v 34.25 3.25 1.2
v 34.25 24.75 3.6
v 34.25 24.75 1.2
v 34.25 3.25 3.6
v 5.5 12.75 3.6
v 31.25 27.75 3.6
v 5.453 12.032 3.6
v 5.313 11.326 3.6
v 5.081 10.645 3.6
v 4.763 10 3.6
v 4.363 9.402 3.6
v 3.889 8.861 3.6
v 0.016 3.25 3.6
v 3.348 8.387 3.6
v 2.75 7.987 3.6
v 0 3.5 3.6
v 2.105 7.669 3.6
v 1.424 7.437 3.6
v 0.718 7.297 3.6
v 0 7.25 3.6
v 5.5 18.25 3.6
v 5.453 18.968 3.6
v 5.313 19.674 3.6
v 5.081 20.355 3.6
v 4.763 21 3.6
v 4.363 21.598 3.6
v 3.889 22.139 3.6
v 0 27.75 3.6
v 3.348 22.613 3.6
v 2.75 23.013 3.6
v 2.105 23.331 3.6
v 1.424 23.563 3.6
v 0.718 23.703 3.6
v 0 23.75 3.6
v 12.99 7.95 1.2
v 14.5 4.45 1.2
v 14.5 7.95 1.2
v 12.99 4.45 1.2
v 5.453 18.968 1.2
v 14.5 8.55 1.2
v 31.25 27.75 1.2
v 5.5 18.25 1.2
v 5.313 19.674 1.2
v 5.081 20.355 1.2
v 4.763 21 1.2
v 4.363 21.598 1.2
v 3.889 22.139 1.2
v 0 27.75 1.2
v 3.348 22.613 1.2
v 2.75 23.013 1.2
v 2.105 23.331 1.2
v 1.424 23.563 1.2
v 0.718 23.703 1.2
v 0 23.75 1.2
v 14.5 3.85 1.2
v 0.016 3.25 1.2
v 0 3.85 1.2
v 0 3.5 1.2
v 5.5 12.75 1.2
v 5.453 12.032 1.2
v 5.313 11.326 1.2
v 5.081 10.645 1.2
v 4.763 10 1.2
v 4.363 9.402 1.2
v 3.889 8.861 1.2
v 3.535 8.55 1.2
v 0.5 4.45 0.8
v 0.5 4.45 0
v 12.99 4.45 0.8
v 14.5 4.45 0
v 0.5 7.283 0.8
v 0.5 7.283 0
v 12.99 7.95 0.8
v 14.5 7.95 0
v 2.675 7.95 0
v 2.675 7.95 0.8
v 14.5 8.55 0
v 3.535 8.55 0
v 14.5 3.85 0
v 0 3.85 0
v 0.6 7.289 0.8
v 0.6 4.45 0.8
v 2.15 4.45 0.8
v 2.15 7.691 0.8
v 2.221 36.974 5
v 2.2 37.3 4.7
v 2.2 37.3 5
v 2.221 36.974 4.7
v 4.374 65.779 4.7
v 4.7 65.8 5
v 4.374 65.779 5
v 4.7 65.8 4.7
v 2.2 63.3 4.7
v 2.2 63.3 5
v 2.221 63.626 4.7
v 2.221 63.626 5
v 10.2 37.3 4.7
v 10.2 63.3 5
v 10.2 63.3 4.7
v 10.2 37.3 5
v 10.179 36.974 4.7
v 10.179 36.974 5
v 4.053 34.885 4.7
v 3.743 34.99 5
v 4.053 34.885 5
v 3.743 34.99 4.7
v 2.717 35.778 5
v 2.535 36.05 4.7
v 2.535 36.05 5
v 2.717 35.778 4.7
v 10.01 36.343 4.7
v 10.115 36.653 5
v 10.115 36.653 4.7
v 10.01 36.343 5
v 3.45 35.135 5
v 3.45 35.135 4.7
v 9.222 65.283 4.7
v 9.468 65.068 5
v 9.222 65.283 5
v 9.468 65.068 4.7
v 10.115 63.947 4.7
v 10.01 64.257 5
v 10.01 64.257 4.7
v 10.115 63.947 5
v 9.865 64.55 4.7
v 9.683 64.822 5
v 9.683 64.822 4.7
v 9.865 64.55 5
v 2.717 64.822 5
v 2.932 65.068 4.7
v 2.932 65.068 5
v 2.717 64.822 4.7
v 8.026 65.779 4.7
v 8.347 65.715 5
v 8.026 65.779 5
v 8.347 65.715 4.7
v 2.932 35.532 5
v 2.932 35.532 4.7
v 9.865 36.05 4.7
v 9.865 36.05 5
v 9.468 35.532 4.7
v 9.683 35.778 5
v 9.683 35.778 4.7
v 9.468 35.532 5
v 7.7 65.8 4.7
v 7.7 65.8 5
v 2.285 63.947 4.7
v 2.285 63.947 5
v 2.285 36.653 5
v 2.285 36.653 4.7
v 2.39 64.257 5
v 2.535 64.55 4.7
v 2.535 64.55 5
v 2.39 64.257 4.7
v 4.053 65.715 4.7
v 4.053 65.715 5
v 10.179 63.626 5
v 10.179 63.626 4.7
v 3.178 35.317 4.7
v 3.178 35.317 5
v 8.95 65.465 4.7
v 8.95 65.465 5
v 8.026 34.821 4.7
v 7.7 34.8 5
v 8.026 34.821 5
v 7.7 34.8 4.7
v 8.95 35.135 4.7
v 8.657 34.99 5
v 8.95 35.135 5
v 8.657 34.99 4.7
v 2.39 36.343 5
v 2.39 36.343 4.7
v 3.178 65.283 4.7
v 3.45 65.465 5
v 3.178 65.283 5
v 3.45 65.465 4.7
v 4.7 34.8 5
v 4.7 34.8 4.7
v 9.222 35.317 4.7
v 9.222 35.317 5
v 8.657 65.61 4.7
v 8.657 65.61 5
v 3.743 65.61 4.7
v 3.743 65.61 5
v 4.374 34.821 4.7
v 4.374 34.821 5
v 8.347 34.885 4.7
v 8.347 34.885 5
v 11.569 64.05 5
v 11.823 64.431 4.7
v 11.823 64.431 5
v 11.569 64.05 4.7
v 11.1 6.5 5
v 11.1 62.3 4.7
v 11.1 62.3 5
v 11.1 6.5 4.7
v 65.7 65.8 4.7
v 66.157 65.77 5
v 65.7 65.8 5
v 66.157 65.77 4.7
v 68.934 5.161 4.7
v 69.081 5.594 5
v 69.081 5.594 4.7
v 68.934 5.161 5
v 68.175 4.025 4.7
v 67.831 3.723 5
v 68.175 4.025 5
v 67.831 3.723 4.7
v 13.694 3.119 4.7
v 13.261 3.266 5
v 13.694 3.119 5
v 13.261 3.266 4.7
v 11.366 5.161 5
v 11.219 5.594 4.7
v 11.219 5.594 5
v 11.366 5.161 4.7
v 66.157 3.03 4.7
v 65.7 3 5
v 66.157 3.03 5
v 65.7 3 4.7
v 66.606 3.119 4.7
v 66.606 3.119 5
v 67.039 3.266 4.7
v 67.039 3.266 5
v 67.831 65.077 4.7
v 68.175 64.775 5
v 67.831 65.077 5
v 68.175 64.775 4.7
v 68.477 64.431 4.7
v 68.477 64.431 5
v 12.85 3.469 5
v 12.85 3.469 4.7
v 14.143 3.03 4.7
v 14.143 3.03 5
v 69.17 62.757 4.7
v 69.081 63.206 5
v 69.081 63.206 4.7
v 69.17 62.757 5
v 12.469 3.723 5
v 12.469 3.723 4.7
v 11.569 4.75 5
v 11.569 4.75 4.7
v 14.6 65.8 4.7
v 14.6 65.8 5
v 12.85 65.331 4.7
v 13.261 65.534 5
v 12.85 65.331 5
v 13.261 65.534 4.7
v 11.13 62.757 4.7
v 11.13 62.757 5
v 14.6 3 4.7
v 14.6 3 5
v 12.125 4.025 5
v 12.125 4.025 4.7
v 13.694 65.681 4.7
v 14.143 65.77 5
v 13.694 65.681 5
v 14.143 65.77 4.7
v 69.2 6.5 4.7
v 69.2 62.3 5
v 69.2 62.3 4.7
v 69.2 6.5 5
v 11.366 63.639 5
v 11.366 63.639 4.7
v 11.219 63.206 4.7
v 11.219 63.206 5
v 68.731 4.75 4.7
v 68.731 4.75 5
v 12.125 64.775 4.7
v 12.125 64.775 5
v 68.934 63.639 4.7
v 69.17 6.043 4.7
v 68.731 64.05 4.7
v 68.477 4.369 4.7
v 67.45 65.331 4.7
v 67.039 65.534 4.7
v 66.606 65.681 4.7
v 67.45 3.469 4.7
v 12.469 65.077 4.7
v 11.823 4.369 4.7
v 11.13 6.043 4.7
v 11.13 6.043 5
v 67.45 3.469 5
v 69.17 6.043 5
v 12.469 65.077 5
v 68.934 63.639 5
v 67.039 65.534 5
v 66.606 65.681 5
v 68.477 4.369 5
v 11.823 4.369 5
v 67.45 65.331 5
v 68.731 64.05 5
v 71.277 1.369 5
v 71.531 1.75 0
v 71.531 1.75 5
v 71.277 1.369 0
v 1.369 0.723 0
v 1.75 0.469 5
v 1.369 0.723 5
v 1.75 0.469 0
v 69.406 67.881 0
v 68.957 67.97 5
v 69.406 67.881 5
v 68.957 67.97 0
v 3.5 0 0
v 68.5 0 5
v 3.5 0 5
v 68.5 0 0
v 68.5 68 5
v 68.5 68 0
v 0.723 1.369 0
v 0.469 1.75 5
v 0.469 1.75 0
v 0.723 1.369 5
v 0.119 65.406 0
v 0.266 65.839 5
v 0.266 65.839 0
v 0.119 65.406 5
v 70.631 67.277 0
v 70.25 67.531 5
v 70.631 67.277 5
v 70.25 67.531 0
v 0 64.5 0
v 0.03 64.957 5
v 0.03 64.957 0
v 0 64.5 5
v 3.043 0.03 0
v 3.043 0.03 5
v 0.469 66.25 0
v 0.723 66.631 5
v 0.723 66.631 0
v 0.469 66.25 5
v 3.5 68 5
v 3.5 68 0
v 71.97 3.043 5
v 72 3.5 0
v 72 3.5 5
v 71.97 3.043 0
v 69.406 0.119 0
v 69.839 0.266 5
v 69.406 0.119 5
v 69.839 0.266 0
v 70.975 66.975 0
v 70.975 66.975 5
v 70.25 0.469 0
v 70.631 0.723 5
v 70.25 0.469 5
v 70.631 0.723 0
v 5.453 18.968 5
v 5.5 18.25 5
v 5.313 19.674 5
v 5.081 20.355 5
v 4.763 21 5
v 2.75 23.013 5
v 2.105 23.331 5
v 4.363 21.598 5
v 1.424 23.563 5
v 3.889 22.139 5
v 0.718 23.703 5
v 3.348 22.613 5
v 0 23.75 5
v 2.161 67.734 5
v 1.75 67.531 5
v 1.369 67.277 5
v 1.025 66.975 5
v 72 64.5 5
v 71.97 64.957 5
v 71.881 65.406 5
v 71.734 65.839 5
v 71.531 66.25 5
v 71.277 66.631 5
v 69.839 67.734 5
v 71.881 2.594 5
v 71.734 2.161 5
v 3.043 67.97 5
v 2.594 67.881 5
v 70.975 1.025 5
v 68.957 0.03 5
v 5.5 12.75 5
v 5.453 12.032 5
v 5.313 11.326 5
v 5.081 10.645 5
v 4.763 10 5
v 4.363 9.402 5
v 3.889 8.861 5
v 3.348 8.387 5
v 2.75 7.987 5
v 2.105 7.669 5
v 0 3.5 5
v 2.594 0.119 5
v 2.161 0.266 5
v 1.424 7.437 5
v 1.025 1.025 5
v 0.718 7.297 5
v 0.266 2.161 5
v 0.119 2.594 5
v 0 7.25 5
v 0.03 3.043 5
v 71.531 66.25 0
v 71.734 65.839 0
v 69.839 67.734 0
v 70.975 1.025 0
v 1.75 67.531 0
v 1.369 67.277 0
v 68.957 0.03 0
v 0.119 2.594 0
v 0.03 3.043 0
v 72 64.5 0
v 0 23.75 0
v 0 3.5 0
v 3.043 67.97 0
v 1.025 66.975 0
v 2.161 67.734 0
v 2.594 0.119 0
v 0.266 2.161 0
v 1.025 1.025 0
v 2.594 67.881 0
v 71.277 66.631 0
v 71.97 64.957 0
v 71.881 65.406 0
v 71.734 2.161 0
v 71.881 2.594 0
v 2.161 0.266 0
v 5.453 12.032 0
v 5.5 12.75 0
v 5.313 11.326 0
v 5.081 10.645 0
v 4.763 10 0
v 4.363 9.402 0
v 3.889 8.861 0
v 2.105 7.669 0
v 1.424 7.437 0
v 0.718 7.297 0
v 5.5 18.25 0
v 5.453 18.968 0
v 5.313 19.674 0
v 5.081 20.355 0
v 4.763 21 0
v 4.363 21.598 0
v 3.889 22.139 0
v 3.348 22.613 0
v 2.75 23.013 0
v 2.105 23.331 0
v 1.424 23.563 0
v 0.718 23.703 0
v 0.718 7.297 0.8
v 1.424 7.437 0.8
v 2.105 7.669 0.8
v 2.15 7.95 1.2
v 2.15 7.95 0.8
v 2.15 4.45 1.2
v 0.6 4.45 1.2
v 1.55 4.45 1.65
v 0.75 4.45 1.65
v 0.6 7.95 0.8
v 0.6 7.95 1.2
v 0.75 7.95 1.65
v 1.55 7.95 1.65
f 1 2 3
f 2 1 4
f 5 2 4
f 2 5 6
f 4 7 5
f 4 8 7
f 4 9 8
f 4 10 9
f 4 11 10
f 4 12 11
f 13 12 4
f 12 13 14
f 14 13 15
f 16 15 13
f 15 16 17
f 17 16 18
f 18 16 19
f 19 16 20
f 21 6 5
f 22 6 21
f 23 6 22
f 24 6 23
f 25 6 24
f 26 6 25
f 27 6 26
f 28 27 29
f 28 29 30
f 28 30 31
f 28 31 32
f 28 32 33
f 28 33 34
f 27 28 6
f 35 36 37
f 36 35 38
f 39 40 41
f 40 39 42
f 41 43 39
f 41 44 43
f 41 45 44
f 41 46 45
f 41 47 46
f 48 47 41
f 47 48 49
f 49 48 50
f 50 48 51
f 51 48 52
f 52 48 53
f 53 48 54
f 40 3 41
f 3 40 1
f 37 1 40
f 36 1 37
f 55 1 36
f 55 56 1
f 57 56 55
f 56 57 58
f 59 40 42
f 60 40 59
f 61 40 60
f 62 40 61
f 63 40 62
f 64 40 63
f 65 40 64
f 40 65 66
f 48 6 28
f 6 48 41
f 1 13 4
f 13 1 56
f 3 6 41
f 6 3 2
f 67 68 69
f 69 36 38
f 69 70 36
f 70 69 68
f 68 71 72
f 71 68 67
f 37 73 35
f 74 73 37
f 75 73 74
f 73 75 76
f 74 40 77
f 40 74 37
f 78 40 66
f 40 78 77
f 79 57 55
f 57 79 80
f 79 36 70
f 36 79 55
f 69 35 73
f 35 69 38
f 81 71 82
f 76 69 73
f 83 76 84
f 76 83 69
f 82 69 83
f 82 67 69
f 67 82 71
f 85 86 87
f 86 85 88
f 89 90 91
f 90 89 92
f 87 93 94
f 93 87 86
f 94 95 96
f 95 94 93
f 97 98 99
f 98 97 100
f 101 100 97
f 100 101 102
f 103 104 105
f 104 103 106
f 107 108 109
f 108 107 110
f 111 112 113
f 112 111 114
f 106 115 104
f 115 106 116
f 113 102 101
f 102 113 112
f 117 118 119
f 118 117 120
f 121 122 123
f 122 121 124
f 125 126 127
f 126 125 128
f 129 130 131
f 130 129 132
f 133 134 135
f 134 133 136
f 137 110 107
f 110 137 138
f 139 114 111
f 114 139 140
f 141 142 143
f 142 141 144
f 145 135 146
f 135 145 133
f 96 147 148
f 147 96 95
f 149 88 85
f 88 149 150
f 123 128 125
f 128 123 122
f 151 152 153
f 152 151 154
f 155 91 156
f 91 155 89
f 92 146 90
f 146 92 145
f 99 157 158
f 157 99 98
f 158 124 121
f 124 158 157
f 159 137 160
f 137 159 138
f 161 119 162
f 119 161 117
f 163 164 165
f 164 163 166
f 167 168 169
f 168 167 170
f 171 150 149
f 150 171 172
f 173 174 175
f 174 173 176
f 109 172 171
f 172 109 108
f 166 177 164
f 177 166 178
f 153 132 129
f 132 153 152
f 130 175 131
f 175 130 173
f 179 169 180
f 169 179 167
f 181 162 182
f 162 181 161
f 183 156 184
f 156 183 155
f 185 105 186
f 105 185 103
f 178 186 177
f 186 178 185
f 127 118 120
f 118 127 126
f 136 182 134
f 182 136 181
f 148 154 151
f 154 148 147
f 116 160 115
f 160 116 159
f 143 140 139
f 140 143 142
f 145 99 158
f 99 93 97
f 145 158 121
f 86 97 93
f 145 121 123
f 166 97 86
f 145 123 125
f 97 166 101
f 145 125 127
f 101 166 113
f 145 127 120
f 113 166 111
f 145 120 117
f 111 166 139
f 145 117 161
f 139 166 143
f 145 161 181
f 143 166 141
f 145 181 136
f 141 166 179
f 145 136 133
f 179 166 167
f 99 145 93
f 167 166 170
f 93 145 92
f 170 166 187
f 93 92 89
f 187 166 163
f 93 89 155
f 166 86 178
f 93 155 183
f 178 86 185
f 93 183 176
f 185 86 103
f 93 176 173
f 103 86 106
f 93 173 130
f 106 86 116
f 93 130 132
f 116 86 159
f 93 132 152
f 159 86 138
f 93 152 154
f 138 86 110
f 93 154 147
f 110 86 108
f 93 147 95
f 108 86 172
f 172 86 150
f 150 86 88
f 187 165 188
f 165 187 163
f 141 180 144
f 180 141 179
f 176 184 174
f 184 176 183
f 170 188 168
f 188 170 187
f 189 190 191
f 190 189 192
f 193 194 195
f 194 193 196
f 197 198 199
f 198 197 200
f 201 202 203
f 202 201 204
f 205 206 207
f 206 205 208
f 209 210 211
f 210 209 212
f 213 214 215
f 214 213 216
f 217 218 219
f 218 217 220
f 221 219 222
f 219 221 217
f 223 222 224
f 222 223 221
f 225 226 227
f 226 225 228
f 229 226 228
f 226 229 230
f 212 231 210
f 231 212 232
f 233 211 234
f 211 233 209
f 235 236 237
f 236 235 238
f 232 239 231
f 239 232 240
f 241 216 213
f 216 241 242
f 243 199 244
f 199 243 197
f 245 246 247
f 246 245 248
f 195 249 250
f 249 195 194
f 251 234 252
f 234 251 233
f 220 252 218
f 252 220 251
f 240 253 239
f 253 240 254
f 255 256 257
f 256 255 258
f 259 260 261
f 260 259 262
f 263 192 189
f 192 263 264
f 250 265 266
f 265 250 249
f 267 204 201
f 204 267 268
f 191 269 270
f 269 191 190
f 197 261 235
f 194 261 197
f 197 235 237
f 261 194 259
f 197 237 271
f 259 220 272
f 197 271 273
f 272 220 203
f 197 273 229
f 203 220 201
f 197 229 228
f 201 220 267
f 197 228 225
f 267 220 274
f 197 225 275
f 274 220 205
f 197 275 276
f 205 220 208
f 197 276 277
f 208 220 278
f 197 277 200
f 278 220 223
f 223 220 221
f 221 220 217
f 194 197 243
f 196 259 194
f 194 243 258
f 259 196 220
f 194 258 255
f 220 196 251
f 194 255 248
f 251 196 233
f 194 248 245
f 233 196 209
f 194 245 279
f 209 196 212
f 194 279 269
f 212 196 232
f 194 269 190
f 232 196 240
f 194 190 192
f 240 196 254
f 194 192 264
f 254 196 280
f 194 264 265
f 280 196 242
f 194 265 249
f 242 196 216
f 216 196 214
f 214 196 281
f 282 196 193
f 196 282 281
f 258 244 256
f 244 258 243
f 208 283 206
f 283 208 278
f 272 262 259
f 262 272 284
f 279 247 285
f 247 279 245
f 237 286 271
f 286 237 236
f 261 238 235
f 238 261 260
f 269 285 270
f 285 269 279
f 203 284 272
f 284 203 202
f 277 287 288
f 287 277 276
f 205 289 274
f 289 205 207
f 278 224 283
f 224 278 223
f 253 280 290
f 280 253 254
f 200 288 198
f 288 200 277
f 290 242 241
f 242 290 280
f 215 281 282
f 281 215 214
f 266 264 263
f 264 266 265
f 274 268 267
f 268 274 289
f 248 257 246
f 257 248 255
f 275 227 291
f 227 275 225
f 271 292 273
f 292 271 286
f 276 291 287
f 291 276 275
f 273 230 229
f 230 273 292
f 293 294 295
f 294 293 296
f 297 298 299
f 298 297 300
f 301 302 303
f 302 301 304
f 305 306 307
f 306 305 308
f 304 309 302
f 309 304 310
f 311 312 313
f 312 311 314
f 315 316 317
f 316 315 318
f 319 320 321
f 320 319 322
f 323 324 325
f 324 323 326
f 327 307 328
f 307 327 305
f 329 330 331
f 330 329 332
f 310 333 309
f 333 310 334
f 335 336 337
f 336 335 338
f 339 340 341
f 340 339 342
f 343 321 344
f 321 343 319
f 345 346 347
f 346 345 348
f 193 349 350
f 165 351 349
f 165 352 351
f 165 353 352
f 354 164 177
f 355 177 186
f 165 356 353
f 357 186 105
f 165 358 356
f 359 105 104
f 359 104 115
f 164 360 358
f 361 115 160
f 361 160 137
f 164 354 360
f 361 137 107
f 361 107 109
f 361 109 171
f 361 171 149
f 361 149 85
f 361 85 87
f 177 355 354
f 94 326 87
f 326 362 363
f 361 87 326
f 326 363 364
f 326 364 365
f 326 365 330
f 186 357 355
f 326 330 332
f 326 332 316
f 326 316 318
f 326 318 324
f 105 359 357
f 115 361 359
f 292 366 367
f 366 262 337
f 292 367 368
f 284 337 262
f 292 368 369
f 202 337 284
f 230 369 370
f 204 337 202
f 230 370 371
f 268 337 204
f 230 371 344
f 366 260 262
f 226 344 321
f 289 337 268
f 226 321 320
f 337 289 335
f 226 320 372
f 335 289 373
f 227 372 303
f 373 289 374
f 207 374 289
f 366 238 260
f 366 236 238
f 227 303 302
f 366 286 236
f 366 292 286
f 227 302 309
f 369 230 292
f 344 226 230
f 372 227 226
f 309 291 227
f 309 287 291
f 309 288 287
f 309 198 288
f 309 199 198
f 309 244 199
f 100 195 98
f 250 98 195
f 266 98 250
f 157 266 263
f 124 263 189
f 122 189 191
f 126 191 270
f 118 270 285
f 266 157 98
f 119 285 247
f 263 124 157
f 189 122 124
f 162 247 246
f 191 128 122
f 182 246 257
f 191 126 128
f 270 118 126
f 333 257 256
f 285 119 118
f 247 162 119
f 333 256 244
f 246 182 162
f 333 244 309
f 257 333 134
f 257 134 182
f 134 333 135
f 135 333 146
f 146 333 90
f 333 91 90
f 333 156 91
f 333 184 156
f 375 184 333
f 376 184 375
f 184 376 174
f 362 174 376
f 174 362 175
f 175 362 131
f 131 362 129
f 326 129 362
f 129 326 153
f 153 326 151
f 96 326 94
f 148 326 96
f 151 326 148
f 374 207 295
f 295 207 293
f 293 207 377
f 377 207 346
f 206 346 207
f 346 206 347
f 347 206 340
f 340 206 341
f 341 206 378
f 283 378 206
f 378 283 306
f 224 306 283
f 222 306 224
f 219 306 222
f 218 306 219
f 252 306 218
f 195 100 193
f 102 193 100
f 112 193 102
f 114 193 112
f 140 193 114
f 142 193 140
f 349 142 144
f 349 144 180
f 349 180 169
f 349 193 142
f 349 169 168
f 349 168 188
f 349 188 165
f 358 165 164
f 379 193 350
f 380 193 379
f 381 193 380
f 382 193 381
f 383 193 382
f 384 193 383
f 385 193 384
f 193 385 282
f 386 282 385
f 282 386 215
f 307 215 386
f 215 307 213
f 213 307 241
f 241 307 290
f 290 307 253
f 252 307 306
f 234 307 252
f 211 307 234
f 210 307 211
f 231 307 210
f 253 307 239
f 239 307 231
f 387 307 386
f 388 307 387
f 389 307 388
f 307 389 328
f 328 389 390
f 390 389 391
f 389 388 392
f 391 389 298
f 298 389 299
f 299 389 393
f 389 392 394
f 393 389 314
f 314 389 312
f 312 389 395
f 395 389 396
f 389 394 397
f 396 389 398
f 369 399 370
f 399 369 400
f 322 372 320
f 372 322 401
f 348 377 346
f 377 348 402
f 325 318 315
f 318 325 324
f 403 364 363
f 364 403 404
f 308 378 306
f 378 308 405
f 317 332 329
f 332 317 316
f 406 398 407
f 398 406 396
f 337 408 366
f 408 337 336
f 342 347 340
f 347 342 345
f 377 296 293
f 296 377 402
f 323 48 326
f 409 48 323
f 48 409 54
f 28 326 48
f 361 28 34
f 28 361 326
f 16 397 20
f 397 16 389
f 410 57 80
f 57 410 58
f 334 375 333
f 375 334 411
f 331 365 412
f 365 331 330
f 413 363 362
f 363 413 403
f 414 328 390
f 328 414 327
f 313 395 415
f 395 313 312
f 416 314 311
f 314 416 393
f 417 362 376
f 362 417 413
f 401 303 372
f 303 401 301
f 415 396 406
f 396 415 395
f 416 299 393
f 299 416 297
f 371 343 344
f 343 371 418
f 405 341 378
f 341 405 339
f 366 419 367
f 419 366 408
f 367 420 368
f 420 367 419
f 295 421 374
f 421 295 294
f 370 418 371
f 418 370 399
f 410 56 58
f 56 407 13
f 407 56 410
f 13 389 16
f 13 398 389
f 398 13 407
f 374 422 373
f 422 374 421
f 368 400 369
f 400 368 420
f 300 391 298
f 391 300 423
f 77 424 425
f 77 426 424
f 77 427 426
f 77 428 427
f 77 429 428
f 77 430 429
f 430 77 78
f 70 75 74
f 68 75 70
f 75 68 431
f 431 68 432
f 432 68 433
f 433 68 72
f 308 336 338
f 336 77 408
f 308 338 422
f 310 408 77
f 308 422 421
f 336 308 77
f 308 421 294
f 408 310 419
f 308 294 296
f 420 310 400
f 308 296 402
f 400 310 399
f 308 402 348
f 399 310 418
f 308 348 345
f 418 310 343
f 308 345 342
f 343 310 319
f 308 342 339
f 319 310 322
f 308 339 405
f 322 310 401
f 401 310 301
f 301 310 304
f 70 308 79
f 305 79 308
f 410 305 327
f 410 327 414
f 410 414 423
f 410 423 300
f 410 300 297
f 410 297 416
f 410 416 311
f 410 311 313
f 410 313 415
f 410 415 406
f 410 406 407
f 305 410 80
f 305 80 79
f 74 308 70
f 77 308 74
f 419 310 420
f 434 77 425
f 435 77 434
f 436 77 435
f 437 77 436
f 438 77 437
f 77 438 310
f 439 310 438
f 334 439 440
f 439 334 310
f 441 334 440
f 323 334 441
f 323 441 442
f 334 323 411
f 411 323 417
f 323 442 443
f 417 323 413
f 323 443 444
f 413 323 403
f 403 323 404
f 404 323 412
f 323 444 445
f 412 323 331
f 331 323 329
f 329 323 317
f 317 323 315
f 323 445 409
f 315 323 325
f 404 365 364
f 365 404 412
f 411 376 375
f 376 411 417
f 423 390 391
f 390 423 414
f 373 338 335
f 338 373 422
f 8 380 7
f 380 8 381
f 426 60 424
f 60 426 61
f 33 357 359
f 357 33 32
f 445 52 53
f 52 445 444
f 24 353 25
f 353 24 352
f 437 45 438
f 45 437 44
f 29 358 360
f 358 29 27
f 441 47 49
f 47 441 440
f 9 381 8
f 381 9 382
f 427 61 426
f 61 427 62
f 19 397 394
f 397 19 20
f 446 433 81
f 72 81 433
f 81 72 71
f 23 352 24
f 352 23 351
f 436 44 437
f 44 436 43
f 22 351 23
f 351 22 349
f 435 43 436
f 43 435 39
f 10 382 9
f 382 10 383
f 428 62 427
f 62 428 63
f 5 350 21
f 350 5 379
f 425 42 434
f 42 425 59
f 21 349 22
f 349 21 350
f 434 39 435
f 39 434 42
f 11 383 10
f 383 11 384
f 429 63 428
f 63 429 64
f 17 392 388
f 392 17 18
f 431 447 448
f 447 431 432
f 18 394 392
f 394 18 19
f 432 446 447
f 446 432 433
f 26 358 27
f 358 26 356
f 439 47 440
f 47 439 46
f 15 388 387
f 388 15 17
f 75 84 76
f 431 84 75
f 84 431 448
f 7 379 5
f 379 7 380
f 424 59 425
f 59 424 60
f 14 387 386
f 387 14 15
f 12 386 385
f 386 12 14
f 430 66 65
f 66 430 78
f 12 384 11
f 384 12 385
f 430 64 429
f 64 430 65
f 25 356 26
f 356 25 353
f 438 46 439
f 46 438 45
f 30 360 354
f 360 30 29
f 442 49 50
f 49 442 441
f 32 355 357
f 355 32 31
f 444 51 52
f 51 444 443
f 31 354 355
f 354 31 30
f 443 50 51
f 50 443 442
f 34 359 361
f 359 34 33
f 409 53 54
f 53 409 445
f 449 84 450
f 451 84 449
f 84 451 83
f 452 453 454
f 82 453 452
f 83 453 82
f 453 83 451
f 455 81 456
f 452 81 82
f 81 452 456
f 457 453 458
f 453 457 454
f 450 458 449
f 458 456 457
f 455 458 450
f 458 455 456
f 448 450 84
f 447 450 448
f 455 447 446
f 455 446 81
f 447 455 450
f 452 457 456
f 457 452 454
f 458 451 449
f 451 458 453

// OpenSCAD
// Sion SD game card case: MiniDisc-sized shell for one full-size SD card,
// laid out after sokky's mockup (spine label upper left, cover-art label,
// card slot on the left edge, lower half).
// Print flat, back face down, no supports. Units: mm.
// Open in OpenSCAD, change the values below, then F6 + File > Export > STL.

/* [Case] */
case_w      = 72;    // MiniDisc: 72 x 68 x 5
case_h      = 68;
case_t      = 5.0;
corner_r    = 3.5;

/* [SD card] */
sd_w        = 24.0;  // SD spec 24.0 x 32.0 x 2.1 (thickness up to 2.25)
sd_l        = 32.0;
clear_xy    = 0.25;  // per side
pocket_t    = 2.4;   // card cavity height
floor_t     = 1.2;   // back skin under the card
slot_y      = 15.5;  // centre of the slot, measured up from the bottom edge
sd_key      = 3.0;   // fills the SD's cut corner so the card only goes in one way, 0 = off
recess_in   = 2.0;   // card sits this far inside the mouth (detent catches its edge)

/* [Grip and retention] */
grip_l      = 11;    // pill-shaped thumb scoop at the mouth, both faces
grip_d      = 5.5;   // how far it reaches in from the edge
detent      = true;  // springy tongue in the back skin with a bump that clicks behind the card
tongue_w    = 3.5;
tongue_l    = 14;
tongue_t    = 0.8;   // thinned so it flexes
tongue_gap  = 0.6;
bump_h      = 0.45;

/* [Labels] */
labels      = true;
label_depth = 0.3;
margin      = 2.2;   // frame around the labels
spine_w     = 8;     // "COTTON CRIMSON" spine label, upper left
spine_h     = 31;
label_gap   = 0.9;
label_r     = 2.5;

$fn = 48;

pw     = sd_w + 2*clear_xy;
pd     = sd_l + clear_xy + recess_in;
py0    = slot_y - pw/2;          // pocket bottom edge
roof_t = case_t - floor_t - pocket_t;
assert(roof_t - label_depth >= 0.8, "roof too thin under the label");

module rplate(w, h, t, r) {
    hull() for (x = [r, w-r], y = [r, h-r]) translate([x, y, 0]) cylinder(r=r, h=t);
}

module pocket() {
    difference() {
        translate([-1, py0, floor_t]) cube([pd + 1, pw, pocket_t]);
        // SD goes in contacts first, label up: its cut corner lands at the inner top
        if (sd_key > 0)
            translate([pd, py0 + pw, floor_t - 0.01]) linear_extrude(pocket_t + 0.02)
                polygon([[0,0],[-sd_key,0],[0,-sd_key]]);
    }
}

module grip() {
    // pill notch through both skins at the mouth, exposes the card's trailing edge
    hull() for (dy = [-(grip_l/2 - grip_d/2), grip_l/2 - grip_d/2])
        translate([0, slot_y + dy, -1]) cylinder(d=grip_d*2, h=case_t + 2);
}

// Tongue runs along x below the grip, inside the card cavity; free end at the mouth.
ty  = py0 + 0.6 + tongue_gap;
assert(ty + tongue_w + tongue_gap < slot_y - grip_l/2 - 0.5, "detent tongue overlaps the grip");
tx_tip = 0.5;                                // tongue tip, near the mouth
module tongue_cut() {
    // U-slot through the back skin, plus thinning the tongue from the cavity side
    translate([0, 0, -1]) linear_extrude(floor_t + 1.01) difference() {
        translate([tx_tip - tongue_gap - 1, ty - tongue_gap]) square([tongue_l + tongue_gap + 1, tongue_w + 2*tongue_gap]);
        translate([tx_tip, ty]) square([tongue_l, tongue_w]);
    }
    translate([tx_tip - 0.01, ty - 0.01, tongue_t]) cube([tongue_l - 1.5, tongue_w + 0.02, floor_t]);
}
module bump() {
    // rounded ridge on the tongue tip, stops just short of the inserted card's trailing edge
    edge = recess_in + clear_xy - 0.1;
    top  = floor_t + bump_h;
    translate([0, ty + tongue_w, 0]) rotate([90, 0, 0]) linear_extrude(tongue_w)
        polygon([[tx_tip + 0.1, tongue_t], [tx_tip + 0.1, floor_t], [edge - 1.4, top],
                 [edge - 0.6, top], [edge, floor_t], [edge, tongue_t]]);
}

module label_cuts() {
    z = case_t - label_depth;
    translate([margin, case_h - margin - spine_h, z]) rplate(spine_w, spine_h, 1, label_r);
    ax = margin + spine_w + label_gap;
    translate([ax, margin + 0.8, z]) rplate(case_w - ax - margin - 0.6, case_h - 2*margin - 0.8, 1, label_r + 1);
}

union() {
    difference() {
        rplate(case_w, case_h, case_t, corner_r);
        pocket();
        grip();
        if (detent) tongue_cut();
        if (labels) label_cuts();
    }
    if (detent) bump();
}
